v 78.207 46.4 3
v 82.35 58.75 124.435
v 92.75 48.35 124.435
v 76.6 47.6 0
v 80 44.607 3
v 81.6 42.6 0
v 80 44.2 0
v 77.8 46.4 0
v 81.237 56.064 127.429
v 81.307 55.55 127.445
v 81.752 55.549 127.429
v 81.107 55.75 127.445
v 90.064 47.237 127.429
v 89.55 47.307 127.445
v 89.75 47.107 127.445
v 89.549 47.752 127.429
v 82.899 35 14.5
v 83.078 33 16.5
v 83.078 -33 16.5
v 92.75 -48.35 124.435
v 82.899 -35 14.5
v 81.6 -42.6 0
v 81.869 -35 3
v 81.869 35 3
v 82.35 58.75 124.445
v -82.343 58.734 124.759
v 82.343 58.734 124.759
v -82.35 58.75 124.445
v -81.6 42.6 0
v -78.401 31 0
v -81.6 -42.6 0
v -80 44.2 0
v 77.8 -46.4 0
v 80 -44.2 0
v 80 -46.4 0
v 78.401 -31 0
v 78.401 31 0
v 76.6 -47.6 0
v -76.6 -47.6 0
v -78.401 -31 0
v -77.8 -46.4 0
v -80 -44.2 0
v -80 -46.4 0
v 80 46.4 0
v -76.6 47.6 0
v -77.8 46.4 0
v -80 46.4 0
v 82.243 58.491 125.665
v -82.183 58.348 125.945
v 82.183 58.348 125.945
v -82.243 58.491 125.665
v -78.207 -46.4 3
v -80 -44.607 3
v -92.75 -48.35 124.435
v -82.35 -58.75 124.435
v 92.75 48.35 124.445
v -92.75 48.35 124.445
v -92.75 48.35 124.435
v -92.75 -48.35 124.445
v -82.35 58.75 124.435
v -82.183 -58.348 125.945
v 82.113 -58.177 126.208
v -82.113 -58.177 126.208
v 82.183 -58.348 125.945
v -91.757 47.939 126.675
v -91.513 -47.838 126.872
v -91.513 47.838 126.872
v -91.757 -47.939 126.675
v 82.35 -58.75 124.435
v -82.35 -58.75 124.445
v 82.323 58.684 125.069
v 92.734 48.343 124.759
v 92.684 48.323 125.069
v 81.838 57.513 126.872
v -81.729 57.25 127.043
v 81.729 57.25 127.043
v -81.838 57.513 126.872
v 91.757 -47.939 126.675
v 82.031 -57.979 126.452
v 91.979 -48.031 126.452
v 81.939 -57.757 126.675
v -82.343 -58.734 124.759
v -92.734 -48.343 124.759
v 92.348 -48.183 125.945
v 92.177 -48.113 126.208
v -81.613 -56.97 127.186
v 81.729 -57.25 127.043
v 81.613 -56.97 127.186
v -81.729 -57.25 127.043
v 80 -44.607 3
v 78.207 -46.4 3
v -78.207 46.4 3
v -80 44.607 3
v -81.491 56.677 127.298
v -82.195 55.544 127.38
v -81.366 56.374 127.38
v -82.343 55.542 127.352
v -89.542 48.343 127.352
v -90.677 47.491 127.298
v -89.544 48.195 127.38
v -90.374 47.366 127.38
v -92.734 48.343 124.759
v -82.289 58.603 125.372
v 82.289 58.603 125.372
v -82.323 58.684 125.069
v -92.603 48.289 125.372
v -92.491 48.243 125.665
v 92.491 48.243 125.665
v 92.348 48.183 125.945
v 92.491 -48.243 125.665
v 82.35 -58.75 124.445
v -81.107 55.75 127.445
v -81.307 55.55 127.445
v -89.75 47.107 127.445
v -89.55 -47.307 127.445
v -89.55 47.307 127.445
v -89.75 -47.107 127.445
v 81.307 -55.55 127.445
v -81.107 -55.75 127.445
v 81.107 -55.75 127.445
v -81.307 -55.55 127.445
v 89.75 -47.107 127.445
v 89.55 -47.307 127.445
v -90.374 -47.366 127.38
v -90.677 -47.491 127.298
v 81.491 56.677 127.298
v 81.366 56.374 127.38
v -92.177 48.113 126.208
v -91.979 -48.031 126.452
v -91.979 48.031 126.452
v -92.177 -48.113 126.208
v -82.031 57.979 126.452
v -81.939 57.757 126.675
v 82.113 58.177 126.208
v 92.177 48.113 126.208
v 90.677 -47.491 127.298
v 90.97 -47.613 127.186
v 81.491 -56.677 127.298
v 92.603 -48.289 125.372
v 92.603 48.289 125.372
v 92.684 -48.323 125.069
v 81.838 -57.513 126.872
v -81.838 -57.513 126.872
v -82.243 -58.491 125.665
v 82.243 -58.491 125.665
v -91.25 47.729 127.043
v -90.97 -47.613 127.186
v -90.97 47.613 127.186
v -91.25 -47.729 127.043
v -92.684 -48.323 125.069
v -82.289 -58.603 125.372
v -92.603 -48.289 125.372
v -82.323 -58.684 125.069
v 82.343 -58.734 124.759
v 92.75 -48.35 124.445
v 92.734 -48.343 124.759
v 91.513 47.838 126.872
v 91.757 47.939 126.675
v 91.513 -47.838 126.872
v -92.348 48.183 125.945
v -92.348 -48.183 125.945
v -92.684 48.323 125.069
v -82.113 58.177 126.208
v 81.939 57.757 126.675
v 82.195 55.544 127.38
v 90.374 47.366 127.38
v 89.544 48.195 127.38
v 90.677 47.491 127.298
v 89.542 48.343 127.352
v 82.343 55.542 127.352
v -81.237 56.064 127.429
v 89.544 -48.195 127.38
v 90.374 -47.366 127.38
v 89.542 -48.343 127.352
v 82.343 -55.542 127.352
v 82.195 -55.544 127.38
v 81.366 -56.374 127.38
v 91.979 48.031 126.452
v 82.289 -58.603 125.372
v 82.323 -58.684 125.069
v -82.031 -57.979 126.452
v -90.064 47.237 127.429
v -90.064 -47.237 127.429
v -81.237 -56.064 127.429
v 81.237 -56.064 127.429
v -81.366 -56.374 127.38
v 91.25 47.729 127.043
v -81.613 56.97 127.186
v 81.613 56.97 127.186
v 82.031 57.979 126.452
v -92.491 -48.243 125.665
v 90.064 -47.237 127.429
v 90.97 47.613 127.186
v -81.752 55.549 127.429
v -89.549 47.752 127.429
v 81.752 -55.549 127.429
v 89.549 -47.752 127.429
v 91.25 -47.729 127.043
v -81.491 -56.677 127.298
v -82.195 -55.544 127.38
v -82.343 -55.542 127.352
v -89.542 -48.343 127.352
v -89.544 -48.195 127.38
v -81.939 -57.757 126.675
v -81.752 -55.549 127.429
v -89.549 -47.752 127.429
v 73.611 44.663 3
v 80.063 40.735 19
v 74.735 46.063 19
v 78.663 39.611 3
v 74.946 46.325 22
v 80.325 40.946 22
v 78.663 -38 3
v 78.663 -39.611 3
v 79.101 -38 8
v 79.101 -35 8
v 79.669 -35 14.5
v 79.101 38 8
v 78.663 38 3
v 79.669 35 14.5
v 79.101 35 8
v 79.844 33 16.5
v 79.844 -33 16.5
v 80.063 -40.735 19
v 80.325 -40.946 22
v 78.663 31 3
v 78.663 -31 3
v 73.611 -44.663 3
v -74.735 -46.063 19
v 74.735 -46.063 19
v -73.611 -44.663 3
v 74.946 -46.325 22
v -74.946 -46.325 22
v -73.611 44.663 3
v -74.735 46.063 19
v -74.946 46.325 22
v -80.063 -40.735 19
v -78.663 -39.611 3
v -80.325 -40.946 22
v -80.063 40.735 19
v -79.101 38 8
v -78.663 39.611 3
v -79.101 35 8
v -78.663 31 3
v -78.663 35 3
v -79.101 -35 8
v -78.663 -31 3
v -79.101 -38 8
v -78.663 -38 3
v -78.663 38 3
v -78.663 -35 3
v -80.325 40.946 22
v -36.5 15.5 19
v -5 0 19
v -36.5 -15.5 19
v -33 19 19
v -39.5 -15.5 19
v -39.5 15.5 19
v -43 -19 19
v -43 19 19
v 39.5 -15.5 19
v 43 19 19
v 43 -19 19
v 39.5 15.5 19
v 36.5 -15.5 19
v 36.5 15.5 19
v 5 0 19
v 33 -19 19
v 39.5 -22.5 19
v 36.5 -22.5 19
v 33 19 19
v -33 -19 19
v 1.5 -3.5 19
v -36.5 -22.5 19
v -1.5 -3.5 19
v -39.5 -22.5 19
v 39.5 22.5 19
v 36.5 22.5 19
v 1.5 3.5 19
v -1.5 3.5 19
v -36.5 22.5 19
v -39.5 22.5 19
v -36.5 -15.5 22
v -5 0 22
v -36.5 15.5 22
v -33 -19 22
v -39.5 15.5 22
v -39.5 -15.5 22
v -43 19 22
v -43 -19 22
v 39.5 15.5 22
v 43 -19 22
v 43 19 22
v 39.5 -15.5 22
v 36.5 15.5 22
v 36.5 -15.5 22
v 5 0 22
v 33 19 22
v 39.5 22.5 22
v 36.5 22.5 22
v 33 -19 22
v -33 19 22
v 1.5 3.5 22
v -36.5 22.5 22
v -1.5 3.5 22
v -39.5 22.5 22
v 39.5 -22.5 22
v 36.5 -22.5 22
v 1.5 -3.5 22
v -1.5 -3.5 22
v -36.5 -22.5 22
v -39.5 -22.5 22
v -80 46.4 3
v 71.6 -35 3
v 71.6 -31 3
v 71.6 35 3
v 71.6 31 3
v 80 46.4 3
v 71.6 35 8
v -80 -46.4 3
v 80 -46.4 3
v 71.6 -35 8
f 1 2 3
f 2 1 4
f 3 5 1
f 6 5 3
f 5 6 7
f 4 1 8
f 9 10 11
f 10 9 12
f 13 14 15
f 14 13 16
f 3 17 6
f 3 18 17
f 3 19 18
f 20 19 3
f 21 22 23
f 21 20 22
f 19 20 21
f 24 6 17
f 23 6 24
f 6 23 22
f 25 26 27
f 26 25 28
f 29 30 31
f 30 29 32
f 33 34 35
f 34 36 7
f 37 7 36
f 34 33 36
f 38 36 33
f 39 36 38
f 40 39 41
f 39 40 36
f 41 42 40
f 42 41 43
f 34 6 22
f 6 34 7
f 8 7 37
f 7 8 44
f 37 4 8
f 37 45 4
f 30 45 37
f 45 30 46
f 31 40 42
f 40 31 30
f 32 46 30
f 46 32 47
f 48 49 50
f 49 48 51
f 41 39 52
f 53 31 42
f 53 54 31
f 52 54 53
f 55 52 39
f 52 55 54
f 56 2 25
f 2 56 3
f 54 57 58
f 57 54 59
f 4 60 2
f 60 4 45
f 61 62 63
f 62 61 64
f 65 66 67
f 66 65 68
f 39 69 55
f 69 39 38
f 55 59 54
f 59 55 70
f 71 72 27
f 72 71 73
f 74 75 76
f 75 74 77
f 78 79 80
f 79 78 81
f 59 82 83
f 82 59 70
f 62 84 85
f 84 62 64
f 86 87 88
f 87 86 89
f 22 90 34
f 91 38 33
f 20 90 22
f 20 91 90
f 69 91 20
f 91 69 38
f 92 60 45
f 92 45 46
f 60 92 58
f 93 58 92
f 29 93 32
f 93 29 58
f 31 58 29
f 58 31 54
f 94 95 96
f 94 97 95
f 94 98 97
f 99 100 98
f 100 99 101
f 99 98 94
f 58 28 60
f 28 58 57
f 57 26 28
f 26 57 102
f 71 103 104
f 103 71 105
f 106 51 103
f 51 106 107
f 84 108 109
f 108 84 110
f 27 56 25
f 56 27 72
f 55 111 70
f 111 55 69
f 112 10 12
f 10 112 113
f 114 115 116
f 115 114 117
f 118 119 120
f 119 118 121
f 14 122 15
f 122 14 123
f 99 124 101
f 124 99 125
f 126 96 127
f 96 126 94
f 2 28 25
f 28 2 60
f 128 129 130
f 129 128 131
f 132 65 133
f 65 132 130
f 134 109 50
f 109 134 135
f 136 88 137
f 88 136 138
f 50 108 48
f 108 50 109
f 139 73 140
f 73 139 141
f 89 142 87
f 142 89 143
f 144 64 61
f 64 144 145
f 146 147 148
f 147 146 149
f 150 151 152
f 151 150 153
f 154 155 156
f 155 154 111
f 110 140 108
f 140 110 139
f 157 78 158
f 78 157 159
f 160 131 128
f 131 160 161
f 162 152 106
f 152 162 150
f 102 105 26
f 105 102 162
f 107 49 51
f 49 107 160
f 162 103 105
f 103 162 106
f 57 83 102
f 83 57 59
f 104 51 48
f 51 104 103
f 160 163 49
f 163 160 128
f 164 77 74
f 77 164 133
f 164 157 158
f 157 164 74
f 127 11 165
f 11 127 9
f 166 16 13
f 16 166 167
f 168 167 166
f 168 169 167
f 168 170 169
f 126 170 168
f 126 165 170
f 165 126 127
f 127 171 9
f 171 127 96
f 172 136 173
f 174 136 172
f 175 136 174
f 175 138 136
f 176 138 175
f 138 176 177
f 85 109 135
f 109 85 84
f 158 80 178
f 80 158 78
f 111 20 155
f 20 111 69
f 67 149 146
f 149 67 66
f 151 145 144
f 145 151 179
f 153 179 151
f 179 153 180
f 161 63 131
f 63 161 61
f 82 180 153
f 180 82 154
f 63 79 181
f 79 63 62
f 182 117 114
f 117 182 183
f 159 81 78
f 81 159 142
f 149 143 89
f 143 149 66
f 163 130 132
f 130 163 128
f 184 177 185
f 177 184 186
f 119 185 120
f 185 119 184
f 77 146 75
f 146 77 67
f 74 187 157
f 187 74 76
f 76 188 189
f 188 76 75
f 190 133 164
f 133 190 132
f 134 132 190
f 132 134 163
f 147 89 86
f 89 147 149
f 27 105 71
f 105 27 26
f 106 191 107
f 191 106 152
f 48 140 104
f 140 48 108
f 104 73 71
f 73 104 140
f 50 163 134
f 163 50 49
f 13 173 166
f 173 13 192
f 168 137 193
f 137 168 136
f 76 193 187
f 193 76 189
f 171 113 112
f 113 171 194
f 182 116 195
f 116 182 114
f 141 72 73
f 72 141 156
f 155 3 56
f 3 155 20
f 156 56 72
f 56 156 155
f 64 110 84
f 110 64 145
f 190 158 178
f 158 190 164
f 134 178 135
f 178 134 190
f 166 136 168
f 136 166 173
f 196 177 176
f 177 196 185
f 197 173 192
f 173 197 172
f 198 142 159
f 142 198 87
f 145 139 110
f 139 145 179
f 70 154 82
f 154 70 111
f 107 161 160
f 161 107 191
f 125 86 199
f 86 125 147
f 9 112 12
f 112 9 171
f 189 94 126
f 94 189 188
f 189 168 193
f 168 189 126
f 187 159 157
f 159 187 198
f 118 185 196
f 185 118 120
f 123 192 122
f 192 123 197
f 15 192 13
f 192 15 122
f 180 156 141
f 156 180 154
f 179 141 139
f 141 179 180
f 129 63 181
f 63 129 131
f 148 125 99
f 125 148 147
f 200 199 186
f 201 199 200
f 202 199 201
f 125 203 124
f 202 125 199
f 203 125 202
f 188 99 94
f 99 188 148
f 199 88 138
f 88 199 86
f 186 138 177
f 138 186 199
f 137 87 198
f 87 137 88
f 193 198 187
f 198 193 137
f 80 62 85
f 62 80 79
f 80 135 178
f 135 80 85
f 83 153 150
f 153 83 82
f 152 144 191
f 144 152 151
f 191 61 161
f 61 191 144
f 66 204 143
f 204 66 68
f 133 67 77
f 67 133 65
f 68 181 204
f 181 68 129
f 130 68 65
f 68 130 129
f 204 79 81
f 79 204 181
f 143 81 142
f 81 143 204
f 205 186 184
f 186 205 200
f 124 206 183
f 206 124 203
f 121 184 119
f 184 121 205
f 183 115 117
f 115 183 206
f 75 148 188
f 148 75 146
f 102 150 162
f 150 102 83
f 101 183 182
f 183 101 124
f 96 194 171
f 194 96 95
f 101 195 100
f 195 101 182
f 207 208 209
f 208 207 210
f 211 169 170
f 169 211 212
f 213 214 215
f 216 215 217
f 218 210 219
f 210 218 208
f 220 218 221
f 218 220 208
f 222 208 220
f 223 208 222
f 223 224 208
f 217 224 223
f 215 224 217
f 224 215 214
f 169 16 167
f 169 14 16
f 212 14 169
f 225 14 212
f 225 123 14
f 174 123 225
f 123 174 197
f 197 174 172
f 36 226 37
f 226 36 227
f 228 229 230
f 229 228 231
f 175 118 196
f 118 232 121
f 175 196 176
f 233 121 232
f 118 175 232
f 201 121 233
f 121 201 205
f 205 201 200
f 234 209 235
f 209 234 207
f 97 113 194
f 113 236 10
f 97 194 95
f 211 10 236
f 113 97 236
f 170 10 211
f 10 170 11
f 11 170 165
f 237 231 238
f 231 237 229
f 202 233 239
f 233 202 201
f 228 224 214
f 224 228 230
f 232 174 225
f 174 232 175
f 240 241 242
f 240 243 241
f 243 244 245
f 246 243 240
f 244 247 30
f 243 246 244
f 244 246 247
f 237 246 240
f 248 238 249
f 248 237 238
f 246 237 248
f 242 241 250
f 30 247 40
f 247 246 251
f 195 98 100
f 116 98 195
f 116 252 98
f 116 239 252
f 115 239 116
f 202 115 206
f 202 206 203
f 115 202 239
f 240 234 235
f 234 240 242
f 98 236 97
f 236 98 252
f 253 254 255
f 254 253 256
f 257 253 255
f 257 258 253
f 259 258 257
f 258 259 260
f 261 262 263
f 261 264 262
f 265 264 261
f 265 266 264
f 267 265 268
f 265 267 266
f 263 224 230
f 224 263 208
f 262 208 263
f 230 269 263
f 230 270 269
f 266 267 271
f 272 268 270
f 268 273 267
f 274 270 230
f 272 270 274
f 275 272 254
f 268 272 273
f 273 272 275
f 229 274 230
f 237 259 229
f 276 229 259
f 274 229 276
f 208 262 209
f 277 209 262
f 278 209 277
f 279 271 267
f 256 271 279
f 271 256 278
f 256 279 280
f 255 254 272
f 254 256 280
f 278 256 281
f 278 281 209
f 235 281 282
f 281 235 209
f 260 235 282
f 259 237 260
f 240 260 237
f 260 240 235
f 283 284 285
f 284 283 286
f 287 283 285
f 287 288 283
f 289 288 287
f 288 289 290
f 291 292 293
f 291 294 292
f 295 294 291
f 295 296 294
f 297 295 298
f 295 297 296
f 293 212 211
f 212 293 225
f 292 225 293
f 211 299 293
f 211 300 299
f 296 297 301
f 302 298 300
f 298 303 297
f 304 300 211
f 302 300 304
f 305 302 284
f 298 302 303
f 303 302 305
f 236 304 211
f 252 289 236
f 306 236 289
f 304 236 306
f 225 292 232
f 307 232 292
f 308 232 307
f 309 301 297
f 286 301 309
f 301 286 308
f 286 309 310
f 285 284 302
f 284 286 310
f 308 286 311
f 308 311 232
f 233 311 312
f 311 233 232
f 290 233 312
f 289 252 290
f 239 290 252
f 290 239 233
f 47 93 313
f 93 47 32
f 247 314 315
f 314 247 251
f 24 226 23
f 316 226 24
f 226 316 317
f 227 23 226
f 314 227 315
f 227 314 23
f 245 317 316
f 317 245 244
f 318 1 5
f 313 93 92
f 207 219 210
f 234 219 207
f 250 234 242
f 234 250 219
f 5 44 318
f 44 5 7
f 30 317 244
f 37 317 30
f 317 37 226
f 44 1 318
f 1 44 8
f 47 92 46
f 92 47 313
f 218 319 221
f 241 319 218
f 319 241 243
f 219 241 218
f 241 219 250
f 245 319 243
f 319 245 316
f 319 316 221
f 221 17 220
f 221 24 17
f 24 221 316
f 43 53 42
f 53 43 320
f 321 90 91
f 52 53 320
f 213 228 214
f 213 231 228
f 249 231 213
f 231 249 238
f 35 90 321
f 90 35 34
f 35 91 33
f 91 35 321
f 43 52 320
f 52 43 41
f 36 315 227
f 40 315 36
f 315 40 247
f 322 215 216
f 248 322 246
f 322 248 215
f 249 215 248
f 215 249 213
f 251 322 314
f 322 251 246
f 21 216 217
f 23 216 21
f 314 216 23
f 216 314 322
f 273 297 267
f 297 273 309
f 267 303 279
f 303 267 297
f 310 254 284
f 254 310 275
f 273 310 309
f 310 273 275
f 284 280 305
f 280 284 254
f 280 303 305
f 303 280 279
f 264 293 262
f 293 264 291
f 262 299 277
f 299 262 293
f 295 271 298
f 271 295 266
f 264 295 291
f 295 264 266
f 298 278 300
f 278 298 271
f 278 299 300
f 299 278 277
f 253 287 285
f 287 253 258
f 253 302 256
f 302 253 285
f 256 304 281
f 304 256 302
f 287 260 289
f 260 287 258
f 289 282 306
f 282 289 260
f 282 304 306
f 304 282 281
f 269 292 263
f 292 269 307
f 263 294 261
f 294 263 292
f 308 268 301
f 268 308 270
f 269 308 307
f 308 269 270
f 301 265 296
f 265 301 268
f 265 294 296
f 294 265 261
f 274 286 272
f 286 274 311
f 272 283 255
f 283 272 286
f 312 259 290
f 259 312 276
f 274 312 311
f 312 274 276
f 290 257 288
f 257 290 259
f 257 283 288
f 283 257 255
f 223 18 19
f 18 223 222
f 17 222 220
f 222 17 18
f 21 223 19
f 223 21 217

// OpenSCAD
// Pot only — print lying on the back (+X) face. See marsh_repot_018.scad.
include <marsh_repot_018.scad>
part = "pot";
